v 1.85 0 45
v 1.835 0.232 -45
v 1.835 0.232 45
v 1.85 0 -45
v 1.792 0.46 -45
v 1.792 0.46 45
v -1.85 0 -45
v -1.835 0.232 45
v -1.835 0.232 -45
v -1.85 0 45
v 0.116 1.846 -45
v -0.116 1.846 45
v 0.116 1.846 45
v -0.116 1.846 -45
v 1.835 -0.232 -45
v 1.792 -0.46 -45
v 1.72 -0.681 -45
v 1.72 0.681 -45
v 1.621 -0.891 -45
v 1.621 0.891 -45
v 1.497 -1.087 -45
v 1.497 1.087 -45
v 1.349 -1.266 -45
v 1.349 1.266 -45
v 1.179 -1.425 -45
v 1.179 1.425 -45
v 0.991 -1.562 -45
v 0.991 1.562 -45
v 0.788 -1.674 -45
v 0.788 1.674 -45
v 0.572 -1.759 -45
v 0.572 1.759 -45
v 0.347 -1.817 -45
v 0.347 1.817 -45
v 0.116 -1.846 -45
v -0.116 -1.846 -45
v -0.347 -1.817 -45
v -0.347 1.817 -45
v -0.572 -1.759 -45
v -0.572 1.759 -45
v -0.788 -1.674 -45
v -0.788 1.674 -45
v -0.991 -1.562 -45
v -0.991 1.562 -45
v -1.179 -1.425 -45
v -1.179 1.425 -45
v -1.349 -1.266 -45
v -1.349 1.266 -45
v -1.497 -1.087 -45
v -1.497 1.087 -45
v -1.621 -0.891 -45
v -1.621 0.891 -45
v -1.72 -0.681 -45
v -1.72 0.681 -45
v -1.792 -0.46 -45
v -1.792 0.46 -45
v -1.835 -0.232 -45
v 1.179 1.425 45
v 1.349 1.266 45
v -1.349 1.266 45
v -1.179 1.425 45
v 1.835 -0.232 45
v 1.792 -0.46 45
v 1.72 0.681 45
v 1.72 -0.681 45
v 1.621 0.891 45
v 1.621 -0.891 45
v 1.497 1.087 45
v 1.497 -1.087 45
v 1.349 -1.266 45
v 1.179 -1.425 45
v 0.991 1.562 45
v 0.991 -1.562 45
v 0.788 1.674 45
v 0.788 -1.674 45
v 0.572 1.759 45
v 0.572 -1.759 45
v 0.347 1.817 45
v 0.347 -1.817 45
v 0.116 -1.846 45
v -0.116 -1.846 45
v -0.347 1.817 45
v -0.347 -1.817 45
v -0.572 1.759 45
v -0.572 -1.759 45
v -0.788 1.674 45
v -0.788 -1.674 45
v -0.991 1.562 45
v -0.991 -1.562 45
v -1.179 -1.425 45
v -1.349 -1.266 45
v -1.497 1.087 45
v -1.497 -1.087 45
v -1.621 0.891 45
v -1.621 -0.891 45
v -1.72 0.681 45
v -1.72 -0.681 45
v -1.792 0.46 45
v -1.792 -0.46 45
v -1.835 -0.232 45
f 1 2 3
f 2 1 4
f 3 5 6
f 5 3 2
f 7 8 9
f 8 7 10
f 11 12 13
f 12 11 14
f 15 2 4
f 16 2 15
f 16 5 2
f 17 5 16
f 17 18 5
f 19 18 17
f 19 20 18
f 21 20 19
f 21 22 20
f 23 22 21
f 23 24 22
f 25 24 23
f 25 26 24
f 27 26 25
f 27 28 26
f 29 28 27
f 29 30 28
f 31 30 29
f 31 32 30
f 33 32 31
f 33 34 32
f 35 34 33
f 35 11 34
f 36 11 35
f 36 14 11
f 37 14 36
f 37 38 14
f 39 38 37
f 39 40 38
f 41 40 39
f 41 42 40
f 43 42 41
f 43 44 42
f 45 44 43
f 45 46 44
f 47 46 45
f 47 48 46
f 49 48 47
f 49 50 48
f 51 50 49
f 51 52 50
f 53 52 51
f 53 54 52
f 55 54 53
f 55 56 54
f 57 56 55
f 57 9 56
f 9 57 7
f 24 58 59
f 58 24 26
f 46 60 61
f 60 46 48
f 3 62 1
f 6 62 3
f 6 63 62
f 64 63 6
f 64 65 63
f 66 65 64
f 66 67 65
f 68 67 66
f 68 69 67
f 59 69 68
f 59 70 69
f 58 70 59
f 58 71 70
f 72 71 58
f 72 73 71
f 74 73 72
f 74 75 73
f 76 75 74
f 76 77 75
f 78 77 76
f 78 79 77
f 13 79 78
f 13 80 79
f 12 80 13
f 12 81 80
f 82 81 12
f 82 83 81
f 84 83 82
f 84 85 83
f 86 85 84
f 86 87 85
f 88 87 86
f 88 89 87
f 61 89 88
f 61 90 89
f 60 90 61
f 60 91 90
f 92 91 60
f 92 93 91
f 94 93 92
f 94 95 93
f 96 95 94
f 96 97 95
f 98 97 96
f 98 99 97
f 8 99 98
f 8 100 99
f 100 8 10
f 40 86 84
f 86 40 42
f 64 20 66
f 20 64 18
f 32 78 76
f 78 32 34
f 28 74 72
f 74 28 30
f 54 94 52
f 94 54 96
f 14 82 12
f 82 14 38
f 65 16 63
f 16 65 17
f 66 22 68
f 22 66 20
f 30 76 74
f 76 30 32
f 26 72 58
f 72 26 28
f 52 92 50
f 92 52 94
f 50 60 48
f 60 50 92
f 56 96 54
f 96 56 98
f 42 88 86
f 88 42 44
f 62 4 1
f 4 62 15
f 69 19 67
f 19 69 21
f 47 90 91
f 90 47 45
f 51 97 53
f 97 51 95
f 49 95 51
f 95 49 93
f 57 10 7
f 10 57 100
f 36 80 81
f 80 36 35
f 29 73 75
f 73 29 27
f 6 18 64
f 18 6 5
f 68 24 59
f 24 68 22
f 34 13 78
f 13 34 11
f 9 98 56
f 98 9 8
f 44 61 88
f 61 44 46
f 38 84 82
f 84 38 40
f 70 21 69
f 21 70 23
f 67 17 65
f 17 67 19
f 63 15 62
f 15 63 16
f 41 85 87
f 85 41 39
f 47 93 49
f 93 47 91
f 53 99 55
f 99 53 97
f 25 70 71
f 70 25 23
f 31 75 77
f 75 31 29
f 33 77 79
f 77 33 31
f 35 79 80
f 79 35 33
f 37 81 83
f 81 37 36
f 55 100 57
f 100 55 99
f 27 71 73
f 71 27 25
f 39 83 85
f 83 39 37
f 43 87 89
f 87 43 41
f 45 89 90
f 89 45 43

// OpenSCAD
$fn = 50;


difference() {
	union() {
		translate(v = [0, 0, -45.0000000000]) {
			cylinder(h = 90, r = 1.8500000000);
		}
	}
	union() {
		translate(v = [0, 0, -100.0000000000]) {
			cylinder(h = 200, r = 0);
		}
	}
}
